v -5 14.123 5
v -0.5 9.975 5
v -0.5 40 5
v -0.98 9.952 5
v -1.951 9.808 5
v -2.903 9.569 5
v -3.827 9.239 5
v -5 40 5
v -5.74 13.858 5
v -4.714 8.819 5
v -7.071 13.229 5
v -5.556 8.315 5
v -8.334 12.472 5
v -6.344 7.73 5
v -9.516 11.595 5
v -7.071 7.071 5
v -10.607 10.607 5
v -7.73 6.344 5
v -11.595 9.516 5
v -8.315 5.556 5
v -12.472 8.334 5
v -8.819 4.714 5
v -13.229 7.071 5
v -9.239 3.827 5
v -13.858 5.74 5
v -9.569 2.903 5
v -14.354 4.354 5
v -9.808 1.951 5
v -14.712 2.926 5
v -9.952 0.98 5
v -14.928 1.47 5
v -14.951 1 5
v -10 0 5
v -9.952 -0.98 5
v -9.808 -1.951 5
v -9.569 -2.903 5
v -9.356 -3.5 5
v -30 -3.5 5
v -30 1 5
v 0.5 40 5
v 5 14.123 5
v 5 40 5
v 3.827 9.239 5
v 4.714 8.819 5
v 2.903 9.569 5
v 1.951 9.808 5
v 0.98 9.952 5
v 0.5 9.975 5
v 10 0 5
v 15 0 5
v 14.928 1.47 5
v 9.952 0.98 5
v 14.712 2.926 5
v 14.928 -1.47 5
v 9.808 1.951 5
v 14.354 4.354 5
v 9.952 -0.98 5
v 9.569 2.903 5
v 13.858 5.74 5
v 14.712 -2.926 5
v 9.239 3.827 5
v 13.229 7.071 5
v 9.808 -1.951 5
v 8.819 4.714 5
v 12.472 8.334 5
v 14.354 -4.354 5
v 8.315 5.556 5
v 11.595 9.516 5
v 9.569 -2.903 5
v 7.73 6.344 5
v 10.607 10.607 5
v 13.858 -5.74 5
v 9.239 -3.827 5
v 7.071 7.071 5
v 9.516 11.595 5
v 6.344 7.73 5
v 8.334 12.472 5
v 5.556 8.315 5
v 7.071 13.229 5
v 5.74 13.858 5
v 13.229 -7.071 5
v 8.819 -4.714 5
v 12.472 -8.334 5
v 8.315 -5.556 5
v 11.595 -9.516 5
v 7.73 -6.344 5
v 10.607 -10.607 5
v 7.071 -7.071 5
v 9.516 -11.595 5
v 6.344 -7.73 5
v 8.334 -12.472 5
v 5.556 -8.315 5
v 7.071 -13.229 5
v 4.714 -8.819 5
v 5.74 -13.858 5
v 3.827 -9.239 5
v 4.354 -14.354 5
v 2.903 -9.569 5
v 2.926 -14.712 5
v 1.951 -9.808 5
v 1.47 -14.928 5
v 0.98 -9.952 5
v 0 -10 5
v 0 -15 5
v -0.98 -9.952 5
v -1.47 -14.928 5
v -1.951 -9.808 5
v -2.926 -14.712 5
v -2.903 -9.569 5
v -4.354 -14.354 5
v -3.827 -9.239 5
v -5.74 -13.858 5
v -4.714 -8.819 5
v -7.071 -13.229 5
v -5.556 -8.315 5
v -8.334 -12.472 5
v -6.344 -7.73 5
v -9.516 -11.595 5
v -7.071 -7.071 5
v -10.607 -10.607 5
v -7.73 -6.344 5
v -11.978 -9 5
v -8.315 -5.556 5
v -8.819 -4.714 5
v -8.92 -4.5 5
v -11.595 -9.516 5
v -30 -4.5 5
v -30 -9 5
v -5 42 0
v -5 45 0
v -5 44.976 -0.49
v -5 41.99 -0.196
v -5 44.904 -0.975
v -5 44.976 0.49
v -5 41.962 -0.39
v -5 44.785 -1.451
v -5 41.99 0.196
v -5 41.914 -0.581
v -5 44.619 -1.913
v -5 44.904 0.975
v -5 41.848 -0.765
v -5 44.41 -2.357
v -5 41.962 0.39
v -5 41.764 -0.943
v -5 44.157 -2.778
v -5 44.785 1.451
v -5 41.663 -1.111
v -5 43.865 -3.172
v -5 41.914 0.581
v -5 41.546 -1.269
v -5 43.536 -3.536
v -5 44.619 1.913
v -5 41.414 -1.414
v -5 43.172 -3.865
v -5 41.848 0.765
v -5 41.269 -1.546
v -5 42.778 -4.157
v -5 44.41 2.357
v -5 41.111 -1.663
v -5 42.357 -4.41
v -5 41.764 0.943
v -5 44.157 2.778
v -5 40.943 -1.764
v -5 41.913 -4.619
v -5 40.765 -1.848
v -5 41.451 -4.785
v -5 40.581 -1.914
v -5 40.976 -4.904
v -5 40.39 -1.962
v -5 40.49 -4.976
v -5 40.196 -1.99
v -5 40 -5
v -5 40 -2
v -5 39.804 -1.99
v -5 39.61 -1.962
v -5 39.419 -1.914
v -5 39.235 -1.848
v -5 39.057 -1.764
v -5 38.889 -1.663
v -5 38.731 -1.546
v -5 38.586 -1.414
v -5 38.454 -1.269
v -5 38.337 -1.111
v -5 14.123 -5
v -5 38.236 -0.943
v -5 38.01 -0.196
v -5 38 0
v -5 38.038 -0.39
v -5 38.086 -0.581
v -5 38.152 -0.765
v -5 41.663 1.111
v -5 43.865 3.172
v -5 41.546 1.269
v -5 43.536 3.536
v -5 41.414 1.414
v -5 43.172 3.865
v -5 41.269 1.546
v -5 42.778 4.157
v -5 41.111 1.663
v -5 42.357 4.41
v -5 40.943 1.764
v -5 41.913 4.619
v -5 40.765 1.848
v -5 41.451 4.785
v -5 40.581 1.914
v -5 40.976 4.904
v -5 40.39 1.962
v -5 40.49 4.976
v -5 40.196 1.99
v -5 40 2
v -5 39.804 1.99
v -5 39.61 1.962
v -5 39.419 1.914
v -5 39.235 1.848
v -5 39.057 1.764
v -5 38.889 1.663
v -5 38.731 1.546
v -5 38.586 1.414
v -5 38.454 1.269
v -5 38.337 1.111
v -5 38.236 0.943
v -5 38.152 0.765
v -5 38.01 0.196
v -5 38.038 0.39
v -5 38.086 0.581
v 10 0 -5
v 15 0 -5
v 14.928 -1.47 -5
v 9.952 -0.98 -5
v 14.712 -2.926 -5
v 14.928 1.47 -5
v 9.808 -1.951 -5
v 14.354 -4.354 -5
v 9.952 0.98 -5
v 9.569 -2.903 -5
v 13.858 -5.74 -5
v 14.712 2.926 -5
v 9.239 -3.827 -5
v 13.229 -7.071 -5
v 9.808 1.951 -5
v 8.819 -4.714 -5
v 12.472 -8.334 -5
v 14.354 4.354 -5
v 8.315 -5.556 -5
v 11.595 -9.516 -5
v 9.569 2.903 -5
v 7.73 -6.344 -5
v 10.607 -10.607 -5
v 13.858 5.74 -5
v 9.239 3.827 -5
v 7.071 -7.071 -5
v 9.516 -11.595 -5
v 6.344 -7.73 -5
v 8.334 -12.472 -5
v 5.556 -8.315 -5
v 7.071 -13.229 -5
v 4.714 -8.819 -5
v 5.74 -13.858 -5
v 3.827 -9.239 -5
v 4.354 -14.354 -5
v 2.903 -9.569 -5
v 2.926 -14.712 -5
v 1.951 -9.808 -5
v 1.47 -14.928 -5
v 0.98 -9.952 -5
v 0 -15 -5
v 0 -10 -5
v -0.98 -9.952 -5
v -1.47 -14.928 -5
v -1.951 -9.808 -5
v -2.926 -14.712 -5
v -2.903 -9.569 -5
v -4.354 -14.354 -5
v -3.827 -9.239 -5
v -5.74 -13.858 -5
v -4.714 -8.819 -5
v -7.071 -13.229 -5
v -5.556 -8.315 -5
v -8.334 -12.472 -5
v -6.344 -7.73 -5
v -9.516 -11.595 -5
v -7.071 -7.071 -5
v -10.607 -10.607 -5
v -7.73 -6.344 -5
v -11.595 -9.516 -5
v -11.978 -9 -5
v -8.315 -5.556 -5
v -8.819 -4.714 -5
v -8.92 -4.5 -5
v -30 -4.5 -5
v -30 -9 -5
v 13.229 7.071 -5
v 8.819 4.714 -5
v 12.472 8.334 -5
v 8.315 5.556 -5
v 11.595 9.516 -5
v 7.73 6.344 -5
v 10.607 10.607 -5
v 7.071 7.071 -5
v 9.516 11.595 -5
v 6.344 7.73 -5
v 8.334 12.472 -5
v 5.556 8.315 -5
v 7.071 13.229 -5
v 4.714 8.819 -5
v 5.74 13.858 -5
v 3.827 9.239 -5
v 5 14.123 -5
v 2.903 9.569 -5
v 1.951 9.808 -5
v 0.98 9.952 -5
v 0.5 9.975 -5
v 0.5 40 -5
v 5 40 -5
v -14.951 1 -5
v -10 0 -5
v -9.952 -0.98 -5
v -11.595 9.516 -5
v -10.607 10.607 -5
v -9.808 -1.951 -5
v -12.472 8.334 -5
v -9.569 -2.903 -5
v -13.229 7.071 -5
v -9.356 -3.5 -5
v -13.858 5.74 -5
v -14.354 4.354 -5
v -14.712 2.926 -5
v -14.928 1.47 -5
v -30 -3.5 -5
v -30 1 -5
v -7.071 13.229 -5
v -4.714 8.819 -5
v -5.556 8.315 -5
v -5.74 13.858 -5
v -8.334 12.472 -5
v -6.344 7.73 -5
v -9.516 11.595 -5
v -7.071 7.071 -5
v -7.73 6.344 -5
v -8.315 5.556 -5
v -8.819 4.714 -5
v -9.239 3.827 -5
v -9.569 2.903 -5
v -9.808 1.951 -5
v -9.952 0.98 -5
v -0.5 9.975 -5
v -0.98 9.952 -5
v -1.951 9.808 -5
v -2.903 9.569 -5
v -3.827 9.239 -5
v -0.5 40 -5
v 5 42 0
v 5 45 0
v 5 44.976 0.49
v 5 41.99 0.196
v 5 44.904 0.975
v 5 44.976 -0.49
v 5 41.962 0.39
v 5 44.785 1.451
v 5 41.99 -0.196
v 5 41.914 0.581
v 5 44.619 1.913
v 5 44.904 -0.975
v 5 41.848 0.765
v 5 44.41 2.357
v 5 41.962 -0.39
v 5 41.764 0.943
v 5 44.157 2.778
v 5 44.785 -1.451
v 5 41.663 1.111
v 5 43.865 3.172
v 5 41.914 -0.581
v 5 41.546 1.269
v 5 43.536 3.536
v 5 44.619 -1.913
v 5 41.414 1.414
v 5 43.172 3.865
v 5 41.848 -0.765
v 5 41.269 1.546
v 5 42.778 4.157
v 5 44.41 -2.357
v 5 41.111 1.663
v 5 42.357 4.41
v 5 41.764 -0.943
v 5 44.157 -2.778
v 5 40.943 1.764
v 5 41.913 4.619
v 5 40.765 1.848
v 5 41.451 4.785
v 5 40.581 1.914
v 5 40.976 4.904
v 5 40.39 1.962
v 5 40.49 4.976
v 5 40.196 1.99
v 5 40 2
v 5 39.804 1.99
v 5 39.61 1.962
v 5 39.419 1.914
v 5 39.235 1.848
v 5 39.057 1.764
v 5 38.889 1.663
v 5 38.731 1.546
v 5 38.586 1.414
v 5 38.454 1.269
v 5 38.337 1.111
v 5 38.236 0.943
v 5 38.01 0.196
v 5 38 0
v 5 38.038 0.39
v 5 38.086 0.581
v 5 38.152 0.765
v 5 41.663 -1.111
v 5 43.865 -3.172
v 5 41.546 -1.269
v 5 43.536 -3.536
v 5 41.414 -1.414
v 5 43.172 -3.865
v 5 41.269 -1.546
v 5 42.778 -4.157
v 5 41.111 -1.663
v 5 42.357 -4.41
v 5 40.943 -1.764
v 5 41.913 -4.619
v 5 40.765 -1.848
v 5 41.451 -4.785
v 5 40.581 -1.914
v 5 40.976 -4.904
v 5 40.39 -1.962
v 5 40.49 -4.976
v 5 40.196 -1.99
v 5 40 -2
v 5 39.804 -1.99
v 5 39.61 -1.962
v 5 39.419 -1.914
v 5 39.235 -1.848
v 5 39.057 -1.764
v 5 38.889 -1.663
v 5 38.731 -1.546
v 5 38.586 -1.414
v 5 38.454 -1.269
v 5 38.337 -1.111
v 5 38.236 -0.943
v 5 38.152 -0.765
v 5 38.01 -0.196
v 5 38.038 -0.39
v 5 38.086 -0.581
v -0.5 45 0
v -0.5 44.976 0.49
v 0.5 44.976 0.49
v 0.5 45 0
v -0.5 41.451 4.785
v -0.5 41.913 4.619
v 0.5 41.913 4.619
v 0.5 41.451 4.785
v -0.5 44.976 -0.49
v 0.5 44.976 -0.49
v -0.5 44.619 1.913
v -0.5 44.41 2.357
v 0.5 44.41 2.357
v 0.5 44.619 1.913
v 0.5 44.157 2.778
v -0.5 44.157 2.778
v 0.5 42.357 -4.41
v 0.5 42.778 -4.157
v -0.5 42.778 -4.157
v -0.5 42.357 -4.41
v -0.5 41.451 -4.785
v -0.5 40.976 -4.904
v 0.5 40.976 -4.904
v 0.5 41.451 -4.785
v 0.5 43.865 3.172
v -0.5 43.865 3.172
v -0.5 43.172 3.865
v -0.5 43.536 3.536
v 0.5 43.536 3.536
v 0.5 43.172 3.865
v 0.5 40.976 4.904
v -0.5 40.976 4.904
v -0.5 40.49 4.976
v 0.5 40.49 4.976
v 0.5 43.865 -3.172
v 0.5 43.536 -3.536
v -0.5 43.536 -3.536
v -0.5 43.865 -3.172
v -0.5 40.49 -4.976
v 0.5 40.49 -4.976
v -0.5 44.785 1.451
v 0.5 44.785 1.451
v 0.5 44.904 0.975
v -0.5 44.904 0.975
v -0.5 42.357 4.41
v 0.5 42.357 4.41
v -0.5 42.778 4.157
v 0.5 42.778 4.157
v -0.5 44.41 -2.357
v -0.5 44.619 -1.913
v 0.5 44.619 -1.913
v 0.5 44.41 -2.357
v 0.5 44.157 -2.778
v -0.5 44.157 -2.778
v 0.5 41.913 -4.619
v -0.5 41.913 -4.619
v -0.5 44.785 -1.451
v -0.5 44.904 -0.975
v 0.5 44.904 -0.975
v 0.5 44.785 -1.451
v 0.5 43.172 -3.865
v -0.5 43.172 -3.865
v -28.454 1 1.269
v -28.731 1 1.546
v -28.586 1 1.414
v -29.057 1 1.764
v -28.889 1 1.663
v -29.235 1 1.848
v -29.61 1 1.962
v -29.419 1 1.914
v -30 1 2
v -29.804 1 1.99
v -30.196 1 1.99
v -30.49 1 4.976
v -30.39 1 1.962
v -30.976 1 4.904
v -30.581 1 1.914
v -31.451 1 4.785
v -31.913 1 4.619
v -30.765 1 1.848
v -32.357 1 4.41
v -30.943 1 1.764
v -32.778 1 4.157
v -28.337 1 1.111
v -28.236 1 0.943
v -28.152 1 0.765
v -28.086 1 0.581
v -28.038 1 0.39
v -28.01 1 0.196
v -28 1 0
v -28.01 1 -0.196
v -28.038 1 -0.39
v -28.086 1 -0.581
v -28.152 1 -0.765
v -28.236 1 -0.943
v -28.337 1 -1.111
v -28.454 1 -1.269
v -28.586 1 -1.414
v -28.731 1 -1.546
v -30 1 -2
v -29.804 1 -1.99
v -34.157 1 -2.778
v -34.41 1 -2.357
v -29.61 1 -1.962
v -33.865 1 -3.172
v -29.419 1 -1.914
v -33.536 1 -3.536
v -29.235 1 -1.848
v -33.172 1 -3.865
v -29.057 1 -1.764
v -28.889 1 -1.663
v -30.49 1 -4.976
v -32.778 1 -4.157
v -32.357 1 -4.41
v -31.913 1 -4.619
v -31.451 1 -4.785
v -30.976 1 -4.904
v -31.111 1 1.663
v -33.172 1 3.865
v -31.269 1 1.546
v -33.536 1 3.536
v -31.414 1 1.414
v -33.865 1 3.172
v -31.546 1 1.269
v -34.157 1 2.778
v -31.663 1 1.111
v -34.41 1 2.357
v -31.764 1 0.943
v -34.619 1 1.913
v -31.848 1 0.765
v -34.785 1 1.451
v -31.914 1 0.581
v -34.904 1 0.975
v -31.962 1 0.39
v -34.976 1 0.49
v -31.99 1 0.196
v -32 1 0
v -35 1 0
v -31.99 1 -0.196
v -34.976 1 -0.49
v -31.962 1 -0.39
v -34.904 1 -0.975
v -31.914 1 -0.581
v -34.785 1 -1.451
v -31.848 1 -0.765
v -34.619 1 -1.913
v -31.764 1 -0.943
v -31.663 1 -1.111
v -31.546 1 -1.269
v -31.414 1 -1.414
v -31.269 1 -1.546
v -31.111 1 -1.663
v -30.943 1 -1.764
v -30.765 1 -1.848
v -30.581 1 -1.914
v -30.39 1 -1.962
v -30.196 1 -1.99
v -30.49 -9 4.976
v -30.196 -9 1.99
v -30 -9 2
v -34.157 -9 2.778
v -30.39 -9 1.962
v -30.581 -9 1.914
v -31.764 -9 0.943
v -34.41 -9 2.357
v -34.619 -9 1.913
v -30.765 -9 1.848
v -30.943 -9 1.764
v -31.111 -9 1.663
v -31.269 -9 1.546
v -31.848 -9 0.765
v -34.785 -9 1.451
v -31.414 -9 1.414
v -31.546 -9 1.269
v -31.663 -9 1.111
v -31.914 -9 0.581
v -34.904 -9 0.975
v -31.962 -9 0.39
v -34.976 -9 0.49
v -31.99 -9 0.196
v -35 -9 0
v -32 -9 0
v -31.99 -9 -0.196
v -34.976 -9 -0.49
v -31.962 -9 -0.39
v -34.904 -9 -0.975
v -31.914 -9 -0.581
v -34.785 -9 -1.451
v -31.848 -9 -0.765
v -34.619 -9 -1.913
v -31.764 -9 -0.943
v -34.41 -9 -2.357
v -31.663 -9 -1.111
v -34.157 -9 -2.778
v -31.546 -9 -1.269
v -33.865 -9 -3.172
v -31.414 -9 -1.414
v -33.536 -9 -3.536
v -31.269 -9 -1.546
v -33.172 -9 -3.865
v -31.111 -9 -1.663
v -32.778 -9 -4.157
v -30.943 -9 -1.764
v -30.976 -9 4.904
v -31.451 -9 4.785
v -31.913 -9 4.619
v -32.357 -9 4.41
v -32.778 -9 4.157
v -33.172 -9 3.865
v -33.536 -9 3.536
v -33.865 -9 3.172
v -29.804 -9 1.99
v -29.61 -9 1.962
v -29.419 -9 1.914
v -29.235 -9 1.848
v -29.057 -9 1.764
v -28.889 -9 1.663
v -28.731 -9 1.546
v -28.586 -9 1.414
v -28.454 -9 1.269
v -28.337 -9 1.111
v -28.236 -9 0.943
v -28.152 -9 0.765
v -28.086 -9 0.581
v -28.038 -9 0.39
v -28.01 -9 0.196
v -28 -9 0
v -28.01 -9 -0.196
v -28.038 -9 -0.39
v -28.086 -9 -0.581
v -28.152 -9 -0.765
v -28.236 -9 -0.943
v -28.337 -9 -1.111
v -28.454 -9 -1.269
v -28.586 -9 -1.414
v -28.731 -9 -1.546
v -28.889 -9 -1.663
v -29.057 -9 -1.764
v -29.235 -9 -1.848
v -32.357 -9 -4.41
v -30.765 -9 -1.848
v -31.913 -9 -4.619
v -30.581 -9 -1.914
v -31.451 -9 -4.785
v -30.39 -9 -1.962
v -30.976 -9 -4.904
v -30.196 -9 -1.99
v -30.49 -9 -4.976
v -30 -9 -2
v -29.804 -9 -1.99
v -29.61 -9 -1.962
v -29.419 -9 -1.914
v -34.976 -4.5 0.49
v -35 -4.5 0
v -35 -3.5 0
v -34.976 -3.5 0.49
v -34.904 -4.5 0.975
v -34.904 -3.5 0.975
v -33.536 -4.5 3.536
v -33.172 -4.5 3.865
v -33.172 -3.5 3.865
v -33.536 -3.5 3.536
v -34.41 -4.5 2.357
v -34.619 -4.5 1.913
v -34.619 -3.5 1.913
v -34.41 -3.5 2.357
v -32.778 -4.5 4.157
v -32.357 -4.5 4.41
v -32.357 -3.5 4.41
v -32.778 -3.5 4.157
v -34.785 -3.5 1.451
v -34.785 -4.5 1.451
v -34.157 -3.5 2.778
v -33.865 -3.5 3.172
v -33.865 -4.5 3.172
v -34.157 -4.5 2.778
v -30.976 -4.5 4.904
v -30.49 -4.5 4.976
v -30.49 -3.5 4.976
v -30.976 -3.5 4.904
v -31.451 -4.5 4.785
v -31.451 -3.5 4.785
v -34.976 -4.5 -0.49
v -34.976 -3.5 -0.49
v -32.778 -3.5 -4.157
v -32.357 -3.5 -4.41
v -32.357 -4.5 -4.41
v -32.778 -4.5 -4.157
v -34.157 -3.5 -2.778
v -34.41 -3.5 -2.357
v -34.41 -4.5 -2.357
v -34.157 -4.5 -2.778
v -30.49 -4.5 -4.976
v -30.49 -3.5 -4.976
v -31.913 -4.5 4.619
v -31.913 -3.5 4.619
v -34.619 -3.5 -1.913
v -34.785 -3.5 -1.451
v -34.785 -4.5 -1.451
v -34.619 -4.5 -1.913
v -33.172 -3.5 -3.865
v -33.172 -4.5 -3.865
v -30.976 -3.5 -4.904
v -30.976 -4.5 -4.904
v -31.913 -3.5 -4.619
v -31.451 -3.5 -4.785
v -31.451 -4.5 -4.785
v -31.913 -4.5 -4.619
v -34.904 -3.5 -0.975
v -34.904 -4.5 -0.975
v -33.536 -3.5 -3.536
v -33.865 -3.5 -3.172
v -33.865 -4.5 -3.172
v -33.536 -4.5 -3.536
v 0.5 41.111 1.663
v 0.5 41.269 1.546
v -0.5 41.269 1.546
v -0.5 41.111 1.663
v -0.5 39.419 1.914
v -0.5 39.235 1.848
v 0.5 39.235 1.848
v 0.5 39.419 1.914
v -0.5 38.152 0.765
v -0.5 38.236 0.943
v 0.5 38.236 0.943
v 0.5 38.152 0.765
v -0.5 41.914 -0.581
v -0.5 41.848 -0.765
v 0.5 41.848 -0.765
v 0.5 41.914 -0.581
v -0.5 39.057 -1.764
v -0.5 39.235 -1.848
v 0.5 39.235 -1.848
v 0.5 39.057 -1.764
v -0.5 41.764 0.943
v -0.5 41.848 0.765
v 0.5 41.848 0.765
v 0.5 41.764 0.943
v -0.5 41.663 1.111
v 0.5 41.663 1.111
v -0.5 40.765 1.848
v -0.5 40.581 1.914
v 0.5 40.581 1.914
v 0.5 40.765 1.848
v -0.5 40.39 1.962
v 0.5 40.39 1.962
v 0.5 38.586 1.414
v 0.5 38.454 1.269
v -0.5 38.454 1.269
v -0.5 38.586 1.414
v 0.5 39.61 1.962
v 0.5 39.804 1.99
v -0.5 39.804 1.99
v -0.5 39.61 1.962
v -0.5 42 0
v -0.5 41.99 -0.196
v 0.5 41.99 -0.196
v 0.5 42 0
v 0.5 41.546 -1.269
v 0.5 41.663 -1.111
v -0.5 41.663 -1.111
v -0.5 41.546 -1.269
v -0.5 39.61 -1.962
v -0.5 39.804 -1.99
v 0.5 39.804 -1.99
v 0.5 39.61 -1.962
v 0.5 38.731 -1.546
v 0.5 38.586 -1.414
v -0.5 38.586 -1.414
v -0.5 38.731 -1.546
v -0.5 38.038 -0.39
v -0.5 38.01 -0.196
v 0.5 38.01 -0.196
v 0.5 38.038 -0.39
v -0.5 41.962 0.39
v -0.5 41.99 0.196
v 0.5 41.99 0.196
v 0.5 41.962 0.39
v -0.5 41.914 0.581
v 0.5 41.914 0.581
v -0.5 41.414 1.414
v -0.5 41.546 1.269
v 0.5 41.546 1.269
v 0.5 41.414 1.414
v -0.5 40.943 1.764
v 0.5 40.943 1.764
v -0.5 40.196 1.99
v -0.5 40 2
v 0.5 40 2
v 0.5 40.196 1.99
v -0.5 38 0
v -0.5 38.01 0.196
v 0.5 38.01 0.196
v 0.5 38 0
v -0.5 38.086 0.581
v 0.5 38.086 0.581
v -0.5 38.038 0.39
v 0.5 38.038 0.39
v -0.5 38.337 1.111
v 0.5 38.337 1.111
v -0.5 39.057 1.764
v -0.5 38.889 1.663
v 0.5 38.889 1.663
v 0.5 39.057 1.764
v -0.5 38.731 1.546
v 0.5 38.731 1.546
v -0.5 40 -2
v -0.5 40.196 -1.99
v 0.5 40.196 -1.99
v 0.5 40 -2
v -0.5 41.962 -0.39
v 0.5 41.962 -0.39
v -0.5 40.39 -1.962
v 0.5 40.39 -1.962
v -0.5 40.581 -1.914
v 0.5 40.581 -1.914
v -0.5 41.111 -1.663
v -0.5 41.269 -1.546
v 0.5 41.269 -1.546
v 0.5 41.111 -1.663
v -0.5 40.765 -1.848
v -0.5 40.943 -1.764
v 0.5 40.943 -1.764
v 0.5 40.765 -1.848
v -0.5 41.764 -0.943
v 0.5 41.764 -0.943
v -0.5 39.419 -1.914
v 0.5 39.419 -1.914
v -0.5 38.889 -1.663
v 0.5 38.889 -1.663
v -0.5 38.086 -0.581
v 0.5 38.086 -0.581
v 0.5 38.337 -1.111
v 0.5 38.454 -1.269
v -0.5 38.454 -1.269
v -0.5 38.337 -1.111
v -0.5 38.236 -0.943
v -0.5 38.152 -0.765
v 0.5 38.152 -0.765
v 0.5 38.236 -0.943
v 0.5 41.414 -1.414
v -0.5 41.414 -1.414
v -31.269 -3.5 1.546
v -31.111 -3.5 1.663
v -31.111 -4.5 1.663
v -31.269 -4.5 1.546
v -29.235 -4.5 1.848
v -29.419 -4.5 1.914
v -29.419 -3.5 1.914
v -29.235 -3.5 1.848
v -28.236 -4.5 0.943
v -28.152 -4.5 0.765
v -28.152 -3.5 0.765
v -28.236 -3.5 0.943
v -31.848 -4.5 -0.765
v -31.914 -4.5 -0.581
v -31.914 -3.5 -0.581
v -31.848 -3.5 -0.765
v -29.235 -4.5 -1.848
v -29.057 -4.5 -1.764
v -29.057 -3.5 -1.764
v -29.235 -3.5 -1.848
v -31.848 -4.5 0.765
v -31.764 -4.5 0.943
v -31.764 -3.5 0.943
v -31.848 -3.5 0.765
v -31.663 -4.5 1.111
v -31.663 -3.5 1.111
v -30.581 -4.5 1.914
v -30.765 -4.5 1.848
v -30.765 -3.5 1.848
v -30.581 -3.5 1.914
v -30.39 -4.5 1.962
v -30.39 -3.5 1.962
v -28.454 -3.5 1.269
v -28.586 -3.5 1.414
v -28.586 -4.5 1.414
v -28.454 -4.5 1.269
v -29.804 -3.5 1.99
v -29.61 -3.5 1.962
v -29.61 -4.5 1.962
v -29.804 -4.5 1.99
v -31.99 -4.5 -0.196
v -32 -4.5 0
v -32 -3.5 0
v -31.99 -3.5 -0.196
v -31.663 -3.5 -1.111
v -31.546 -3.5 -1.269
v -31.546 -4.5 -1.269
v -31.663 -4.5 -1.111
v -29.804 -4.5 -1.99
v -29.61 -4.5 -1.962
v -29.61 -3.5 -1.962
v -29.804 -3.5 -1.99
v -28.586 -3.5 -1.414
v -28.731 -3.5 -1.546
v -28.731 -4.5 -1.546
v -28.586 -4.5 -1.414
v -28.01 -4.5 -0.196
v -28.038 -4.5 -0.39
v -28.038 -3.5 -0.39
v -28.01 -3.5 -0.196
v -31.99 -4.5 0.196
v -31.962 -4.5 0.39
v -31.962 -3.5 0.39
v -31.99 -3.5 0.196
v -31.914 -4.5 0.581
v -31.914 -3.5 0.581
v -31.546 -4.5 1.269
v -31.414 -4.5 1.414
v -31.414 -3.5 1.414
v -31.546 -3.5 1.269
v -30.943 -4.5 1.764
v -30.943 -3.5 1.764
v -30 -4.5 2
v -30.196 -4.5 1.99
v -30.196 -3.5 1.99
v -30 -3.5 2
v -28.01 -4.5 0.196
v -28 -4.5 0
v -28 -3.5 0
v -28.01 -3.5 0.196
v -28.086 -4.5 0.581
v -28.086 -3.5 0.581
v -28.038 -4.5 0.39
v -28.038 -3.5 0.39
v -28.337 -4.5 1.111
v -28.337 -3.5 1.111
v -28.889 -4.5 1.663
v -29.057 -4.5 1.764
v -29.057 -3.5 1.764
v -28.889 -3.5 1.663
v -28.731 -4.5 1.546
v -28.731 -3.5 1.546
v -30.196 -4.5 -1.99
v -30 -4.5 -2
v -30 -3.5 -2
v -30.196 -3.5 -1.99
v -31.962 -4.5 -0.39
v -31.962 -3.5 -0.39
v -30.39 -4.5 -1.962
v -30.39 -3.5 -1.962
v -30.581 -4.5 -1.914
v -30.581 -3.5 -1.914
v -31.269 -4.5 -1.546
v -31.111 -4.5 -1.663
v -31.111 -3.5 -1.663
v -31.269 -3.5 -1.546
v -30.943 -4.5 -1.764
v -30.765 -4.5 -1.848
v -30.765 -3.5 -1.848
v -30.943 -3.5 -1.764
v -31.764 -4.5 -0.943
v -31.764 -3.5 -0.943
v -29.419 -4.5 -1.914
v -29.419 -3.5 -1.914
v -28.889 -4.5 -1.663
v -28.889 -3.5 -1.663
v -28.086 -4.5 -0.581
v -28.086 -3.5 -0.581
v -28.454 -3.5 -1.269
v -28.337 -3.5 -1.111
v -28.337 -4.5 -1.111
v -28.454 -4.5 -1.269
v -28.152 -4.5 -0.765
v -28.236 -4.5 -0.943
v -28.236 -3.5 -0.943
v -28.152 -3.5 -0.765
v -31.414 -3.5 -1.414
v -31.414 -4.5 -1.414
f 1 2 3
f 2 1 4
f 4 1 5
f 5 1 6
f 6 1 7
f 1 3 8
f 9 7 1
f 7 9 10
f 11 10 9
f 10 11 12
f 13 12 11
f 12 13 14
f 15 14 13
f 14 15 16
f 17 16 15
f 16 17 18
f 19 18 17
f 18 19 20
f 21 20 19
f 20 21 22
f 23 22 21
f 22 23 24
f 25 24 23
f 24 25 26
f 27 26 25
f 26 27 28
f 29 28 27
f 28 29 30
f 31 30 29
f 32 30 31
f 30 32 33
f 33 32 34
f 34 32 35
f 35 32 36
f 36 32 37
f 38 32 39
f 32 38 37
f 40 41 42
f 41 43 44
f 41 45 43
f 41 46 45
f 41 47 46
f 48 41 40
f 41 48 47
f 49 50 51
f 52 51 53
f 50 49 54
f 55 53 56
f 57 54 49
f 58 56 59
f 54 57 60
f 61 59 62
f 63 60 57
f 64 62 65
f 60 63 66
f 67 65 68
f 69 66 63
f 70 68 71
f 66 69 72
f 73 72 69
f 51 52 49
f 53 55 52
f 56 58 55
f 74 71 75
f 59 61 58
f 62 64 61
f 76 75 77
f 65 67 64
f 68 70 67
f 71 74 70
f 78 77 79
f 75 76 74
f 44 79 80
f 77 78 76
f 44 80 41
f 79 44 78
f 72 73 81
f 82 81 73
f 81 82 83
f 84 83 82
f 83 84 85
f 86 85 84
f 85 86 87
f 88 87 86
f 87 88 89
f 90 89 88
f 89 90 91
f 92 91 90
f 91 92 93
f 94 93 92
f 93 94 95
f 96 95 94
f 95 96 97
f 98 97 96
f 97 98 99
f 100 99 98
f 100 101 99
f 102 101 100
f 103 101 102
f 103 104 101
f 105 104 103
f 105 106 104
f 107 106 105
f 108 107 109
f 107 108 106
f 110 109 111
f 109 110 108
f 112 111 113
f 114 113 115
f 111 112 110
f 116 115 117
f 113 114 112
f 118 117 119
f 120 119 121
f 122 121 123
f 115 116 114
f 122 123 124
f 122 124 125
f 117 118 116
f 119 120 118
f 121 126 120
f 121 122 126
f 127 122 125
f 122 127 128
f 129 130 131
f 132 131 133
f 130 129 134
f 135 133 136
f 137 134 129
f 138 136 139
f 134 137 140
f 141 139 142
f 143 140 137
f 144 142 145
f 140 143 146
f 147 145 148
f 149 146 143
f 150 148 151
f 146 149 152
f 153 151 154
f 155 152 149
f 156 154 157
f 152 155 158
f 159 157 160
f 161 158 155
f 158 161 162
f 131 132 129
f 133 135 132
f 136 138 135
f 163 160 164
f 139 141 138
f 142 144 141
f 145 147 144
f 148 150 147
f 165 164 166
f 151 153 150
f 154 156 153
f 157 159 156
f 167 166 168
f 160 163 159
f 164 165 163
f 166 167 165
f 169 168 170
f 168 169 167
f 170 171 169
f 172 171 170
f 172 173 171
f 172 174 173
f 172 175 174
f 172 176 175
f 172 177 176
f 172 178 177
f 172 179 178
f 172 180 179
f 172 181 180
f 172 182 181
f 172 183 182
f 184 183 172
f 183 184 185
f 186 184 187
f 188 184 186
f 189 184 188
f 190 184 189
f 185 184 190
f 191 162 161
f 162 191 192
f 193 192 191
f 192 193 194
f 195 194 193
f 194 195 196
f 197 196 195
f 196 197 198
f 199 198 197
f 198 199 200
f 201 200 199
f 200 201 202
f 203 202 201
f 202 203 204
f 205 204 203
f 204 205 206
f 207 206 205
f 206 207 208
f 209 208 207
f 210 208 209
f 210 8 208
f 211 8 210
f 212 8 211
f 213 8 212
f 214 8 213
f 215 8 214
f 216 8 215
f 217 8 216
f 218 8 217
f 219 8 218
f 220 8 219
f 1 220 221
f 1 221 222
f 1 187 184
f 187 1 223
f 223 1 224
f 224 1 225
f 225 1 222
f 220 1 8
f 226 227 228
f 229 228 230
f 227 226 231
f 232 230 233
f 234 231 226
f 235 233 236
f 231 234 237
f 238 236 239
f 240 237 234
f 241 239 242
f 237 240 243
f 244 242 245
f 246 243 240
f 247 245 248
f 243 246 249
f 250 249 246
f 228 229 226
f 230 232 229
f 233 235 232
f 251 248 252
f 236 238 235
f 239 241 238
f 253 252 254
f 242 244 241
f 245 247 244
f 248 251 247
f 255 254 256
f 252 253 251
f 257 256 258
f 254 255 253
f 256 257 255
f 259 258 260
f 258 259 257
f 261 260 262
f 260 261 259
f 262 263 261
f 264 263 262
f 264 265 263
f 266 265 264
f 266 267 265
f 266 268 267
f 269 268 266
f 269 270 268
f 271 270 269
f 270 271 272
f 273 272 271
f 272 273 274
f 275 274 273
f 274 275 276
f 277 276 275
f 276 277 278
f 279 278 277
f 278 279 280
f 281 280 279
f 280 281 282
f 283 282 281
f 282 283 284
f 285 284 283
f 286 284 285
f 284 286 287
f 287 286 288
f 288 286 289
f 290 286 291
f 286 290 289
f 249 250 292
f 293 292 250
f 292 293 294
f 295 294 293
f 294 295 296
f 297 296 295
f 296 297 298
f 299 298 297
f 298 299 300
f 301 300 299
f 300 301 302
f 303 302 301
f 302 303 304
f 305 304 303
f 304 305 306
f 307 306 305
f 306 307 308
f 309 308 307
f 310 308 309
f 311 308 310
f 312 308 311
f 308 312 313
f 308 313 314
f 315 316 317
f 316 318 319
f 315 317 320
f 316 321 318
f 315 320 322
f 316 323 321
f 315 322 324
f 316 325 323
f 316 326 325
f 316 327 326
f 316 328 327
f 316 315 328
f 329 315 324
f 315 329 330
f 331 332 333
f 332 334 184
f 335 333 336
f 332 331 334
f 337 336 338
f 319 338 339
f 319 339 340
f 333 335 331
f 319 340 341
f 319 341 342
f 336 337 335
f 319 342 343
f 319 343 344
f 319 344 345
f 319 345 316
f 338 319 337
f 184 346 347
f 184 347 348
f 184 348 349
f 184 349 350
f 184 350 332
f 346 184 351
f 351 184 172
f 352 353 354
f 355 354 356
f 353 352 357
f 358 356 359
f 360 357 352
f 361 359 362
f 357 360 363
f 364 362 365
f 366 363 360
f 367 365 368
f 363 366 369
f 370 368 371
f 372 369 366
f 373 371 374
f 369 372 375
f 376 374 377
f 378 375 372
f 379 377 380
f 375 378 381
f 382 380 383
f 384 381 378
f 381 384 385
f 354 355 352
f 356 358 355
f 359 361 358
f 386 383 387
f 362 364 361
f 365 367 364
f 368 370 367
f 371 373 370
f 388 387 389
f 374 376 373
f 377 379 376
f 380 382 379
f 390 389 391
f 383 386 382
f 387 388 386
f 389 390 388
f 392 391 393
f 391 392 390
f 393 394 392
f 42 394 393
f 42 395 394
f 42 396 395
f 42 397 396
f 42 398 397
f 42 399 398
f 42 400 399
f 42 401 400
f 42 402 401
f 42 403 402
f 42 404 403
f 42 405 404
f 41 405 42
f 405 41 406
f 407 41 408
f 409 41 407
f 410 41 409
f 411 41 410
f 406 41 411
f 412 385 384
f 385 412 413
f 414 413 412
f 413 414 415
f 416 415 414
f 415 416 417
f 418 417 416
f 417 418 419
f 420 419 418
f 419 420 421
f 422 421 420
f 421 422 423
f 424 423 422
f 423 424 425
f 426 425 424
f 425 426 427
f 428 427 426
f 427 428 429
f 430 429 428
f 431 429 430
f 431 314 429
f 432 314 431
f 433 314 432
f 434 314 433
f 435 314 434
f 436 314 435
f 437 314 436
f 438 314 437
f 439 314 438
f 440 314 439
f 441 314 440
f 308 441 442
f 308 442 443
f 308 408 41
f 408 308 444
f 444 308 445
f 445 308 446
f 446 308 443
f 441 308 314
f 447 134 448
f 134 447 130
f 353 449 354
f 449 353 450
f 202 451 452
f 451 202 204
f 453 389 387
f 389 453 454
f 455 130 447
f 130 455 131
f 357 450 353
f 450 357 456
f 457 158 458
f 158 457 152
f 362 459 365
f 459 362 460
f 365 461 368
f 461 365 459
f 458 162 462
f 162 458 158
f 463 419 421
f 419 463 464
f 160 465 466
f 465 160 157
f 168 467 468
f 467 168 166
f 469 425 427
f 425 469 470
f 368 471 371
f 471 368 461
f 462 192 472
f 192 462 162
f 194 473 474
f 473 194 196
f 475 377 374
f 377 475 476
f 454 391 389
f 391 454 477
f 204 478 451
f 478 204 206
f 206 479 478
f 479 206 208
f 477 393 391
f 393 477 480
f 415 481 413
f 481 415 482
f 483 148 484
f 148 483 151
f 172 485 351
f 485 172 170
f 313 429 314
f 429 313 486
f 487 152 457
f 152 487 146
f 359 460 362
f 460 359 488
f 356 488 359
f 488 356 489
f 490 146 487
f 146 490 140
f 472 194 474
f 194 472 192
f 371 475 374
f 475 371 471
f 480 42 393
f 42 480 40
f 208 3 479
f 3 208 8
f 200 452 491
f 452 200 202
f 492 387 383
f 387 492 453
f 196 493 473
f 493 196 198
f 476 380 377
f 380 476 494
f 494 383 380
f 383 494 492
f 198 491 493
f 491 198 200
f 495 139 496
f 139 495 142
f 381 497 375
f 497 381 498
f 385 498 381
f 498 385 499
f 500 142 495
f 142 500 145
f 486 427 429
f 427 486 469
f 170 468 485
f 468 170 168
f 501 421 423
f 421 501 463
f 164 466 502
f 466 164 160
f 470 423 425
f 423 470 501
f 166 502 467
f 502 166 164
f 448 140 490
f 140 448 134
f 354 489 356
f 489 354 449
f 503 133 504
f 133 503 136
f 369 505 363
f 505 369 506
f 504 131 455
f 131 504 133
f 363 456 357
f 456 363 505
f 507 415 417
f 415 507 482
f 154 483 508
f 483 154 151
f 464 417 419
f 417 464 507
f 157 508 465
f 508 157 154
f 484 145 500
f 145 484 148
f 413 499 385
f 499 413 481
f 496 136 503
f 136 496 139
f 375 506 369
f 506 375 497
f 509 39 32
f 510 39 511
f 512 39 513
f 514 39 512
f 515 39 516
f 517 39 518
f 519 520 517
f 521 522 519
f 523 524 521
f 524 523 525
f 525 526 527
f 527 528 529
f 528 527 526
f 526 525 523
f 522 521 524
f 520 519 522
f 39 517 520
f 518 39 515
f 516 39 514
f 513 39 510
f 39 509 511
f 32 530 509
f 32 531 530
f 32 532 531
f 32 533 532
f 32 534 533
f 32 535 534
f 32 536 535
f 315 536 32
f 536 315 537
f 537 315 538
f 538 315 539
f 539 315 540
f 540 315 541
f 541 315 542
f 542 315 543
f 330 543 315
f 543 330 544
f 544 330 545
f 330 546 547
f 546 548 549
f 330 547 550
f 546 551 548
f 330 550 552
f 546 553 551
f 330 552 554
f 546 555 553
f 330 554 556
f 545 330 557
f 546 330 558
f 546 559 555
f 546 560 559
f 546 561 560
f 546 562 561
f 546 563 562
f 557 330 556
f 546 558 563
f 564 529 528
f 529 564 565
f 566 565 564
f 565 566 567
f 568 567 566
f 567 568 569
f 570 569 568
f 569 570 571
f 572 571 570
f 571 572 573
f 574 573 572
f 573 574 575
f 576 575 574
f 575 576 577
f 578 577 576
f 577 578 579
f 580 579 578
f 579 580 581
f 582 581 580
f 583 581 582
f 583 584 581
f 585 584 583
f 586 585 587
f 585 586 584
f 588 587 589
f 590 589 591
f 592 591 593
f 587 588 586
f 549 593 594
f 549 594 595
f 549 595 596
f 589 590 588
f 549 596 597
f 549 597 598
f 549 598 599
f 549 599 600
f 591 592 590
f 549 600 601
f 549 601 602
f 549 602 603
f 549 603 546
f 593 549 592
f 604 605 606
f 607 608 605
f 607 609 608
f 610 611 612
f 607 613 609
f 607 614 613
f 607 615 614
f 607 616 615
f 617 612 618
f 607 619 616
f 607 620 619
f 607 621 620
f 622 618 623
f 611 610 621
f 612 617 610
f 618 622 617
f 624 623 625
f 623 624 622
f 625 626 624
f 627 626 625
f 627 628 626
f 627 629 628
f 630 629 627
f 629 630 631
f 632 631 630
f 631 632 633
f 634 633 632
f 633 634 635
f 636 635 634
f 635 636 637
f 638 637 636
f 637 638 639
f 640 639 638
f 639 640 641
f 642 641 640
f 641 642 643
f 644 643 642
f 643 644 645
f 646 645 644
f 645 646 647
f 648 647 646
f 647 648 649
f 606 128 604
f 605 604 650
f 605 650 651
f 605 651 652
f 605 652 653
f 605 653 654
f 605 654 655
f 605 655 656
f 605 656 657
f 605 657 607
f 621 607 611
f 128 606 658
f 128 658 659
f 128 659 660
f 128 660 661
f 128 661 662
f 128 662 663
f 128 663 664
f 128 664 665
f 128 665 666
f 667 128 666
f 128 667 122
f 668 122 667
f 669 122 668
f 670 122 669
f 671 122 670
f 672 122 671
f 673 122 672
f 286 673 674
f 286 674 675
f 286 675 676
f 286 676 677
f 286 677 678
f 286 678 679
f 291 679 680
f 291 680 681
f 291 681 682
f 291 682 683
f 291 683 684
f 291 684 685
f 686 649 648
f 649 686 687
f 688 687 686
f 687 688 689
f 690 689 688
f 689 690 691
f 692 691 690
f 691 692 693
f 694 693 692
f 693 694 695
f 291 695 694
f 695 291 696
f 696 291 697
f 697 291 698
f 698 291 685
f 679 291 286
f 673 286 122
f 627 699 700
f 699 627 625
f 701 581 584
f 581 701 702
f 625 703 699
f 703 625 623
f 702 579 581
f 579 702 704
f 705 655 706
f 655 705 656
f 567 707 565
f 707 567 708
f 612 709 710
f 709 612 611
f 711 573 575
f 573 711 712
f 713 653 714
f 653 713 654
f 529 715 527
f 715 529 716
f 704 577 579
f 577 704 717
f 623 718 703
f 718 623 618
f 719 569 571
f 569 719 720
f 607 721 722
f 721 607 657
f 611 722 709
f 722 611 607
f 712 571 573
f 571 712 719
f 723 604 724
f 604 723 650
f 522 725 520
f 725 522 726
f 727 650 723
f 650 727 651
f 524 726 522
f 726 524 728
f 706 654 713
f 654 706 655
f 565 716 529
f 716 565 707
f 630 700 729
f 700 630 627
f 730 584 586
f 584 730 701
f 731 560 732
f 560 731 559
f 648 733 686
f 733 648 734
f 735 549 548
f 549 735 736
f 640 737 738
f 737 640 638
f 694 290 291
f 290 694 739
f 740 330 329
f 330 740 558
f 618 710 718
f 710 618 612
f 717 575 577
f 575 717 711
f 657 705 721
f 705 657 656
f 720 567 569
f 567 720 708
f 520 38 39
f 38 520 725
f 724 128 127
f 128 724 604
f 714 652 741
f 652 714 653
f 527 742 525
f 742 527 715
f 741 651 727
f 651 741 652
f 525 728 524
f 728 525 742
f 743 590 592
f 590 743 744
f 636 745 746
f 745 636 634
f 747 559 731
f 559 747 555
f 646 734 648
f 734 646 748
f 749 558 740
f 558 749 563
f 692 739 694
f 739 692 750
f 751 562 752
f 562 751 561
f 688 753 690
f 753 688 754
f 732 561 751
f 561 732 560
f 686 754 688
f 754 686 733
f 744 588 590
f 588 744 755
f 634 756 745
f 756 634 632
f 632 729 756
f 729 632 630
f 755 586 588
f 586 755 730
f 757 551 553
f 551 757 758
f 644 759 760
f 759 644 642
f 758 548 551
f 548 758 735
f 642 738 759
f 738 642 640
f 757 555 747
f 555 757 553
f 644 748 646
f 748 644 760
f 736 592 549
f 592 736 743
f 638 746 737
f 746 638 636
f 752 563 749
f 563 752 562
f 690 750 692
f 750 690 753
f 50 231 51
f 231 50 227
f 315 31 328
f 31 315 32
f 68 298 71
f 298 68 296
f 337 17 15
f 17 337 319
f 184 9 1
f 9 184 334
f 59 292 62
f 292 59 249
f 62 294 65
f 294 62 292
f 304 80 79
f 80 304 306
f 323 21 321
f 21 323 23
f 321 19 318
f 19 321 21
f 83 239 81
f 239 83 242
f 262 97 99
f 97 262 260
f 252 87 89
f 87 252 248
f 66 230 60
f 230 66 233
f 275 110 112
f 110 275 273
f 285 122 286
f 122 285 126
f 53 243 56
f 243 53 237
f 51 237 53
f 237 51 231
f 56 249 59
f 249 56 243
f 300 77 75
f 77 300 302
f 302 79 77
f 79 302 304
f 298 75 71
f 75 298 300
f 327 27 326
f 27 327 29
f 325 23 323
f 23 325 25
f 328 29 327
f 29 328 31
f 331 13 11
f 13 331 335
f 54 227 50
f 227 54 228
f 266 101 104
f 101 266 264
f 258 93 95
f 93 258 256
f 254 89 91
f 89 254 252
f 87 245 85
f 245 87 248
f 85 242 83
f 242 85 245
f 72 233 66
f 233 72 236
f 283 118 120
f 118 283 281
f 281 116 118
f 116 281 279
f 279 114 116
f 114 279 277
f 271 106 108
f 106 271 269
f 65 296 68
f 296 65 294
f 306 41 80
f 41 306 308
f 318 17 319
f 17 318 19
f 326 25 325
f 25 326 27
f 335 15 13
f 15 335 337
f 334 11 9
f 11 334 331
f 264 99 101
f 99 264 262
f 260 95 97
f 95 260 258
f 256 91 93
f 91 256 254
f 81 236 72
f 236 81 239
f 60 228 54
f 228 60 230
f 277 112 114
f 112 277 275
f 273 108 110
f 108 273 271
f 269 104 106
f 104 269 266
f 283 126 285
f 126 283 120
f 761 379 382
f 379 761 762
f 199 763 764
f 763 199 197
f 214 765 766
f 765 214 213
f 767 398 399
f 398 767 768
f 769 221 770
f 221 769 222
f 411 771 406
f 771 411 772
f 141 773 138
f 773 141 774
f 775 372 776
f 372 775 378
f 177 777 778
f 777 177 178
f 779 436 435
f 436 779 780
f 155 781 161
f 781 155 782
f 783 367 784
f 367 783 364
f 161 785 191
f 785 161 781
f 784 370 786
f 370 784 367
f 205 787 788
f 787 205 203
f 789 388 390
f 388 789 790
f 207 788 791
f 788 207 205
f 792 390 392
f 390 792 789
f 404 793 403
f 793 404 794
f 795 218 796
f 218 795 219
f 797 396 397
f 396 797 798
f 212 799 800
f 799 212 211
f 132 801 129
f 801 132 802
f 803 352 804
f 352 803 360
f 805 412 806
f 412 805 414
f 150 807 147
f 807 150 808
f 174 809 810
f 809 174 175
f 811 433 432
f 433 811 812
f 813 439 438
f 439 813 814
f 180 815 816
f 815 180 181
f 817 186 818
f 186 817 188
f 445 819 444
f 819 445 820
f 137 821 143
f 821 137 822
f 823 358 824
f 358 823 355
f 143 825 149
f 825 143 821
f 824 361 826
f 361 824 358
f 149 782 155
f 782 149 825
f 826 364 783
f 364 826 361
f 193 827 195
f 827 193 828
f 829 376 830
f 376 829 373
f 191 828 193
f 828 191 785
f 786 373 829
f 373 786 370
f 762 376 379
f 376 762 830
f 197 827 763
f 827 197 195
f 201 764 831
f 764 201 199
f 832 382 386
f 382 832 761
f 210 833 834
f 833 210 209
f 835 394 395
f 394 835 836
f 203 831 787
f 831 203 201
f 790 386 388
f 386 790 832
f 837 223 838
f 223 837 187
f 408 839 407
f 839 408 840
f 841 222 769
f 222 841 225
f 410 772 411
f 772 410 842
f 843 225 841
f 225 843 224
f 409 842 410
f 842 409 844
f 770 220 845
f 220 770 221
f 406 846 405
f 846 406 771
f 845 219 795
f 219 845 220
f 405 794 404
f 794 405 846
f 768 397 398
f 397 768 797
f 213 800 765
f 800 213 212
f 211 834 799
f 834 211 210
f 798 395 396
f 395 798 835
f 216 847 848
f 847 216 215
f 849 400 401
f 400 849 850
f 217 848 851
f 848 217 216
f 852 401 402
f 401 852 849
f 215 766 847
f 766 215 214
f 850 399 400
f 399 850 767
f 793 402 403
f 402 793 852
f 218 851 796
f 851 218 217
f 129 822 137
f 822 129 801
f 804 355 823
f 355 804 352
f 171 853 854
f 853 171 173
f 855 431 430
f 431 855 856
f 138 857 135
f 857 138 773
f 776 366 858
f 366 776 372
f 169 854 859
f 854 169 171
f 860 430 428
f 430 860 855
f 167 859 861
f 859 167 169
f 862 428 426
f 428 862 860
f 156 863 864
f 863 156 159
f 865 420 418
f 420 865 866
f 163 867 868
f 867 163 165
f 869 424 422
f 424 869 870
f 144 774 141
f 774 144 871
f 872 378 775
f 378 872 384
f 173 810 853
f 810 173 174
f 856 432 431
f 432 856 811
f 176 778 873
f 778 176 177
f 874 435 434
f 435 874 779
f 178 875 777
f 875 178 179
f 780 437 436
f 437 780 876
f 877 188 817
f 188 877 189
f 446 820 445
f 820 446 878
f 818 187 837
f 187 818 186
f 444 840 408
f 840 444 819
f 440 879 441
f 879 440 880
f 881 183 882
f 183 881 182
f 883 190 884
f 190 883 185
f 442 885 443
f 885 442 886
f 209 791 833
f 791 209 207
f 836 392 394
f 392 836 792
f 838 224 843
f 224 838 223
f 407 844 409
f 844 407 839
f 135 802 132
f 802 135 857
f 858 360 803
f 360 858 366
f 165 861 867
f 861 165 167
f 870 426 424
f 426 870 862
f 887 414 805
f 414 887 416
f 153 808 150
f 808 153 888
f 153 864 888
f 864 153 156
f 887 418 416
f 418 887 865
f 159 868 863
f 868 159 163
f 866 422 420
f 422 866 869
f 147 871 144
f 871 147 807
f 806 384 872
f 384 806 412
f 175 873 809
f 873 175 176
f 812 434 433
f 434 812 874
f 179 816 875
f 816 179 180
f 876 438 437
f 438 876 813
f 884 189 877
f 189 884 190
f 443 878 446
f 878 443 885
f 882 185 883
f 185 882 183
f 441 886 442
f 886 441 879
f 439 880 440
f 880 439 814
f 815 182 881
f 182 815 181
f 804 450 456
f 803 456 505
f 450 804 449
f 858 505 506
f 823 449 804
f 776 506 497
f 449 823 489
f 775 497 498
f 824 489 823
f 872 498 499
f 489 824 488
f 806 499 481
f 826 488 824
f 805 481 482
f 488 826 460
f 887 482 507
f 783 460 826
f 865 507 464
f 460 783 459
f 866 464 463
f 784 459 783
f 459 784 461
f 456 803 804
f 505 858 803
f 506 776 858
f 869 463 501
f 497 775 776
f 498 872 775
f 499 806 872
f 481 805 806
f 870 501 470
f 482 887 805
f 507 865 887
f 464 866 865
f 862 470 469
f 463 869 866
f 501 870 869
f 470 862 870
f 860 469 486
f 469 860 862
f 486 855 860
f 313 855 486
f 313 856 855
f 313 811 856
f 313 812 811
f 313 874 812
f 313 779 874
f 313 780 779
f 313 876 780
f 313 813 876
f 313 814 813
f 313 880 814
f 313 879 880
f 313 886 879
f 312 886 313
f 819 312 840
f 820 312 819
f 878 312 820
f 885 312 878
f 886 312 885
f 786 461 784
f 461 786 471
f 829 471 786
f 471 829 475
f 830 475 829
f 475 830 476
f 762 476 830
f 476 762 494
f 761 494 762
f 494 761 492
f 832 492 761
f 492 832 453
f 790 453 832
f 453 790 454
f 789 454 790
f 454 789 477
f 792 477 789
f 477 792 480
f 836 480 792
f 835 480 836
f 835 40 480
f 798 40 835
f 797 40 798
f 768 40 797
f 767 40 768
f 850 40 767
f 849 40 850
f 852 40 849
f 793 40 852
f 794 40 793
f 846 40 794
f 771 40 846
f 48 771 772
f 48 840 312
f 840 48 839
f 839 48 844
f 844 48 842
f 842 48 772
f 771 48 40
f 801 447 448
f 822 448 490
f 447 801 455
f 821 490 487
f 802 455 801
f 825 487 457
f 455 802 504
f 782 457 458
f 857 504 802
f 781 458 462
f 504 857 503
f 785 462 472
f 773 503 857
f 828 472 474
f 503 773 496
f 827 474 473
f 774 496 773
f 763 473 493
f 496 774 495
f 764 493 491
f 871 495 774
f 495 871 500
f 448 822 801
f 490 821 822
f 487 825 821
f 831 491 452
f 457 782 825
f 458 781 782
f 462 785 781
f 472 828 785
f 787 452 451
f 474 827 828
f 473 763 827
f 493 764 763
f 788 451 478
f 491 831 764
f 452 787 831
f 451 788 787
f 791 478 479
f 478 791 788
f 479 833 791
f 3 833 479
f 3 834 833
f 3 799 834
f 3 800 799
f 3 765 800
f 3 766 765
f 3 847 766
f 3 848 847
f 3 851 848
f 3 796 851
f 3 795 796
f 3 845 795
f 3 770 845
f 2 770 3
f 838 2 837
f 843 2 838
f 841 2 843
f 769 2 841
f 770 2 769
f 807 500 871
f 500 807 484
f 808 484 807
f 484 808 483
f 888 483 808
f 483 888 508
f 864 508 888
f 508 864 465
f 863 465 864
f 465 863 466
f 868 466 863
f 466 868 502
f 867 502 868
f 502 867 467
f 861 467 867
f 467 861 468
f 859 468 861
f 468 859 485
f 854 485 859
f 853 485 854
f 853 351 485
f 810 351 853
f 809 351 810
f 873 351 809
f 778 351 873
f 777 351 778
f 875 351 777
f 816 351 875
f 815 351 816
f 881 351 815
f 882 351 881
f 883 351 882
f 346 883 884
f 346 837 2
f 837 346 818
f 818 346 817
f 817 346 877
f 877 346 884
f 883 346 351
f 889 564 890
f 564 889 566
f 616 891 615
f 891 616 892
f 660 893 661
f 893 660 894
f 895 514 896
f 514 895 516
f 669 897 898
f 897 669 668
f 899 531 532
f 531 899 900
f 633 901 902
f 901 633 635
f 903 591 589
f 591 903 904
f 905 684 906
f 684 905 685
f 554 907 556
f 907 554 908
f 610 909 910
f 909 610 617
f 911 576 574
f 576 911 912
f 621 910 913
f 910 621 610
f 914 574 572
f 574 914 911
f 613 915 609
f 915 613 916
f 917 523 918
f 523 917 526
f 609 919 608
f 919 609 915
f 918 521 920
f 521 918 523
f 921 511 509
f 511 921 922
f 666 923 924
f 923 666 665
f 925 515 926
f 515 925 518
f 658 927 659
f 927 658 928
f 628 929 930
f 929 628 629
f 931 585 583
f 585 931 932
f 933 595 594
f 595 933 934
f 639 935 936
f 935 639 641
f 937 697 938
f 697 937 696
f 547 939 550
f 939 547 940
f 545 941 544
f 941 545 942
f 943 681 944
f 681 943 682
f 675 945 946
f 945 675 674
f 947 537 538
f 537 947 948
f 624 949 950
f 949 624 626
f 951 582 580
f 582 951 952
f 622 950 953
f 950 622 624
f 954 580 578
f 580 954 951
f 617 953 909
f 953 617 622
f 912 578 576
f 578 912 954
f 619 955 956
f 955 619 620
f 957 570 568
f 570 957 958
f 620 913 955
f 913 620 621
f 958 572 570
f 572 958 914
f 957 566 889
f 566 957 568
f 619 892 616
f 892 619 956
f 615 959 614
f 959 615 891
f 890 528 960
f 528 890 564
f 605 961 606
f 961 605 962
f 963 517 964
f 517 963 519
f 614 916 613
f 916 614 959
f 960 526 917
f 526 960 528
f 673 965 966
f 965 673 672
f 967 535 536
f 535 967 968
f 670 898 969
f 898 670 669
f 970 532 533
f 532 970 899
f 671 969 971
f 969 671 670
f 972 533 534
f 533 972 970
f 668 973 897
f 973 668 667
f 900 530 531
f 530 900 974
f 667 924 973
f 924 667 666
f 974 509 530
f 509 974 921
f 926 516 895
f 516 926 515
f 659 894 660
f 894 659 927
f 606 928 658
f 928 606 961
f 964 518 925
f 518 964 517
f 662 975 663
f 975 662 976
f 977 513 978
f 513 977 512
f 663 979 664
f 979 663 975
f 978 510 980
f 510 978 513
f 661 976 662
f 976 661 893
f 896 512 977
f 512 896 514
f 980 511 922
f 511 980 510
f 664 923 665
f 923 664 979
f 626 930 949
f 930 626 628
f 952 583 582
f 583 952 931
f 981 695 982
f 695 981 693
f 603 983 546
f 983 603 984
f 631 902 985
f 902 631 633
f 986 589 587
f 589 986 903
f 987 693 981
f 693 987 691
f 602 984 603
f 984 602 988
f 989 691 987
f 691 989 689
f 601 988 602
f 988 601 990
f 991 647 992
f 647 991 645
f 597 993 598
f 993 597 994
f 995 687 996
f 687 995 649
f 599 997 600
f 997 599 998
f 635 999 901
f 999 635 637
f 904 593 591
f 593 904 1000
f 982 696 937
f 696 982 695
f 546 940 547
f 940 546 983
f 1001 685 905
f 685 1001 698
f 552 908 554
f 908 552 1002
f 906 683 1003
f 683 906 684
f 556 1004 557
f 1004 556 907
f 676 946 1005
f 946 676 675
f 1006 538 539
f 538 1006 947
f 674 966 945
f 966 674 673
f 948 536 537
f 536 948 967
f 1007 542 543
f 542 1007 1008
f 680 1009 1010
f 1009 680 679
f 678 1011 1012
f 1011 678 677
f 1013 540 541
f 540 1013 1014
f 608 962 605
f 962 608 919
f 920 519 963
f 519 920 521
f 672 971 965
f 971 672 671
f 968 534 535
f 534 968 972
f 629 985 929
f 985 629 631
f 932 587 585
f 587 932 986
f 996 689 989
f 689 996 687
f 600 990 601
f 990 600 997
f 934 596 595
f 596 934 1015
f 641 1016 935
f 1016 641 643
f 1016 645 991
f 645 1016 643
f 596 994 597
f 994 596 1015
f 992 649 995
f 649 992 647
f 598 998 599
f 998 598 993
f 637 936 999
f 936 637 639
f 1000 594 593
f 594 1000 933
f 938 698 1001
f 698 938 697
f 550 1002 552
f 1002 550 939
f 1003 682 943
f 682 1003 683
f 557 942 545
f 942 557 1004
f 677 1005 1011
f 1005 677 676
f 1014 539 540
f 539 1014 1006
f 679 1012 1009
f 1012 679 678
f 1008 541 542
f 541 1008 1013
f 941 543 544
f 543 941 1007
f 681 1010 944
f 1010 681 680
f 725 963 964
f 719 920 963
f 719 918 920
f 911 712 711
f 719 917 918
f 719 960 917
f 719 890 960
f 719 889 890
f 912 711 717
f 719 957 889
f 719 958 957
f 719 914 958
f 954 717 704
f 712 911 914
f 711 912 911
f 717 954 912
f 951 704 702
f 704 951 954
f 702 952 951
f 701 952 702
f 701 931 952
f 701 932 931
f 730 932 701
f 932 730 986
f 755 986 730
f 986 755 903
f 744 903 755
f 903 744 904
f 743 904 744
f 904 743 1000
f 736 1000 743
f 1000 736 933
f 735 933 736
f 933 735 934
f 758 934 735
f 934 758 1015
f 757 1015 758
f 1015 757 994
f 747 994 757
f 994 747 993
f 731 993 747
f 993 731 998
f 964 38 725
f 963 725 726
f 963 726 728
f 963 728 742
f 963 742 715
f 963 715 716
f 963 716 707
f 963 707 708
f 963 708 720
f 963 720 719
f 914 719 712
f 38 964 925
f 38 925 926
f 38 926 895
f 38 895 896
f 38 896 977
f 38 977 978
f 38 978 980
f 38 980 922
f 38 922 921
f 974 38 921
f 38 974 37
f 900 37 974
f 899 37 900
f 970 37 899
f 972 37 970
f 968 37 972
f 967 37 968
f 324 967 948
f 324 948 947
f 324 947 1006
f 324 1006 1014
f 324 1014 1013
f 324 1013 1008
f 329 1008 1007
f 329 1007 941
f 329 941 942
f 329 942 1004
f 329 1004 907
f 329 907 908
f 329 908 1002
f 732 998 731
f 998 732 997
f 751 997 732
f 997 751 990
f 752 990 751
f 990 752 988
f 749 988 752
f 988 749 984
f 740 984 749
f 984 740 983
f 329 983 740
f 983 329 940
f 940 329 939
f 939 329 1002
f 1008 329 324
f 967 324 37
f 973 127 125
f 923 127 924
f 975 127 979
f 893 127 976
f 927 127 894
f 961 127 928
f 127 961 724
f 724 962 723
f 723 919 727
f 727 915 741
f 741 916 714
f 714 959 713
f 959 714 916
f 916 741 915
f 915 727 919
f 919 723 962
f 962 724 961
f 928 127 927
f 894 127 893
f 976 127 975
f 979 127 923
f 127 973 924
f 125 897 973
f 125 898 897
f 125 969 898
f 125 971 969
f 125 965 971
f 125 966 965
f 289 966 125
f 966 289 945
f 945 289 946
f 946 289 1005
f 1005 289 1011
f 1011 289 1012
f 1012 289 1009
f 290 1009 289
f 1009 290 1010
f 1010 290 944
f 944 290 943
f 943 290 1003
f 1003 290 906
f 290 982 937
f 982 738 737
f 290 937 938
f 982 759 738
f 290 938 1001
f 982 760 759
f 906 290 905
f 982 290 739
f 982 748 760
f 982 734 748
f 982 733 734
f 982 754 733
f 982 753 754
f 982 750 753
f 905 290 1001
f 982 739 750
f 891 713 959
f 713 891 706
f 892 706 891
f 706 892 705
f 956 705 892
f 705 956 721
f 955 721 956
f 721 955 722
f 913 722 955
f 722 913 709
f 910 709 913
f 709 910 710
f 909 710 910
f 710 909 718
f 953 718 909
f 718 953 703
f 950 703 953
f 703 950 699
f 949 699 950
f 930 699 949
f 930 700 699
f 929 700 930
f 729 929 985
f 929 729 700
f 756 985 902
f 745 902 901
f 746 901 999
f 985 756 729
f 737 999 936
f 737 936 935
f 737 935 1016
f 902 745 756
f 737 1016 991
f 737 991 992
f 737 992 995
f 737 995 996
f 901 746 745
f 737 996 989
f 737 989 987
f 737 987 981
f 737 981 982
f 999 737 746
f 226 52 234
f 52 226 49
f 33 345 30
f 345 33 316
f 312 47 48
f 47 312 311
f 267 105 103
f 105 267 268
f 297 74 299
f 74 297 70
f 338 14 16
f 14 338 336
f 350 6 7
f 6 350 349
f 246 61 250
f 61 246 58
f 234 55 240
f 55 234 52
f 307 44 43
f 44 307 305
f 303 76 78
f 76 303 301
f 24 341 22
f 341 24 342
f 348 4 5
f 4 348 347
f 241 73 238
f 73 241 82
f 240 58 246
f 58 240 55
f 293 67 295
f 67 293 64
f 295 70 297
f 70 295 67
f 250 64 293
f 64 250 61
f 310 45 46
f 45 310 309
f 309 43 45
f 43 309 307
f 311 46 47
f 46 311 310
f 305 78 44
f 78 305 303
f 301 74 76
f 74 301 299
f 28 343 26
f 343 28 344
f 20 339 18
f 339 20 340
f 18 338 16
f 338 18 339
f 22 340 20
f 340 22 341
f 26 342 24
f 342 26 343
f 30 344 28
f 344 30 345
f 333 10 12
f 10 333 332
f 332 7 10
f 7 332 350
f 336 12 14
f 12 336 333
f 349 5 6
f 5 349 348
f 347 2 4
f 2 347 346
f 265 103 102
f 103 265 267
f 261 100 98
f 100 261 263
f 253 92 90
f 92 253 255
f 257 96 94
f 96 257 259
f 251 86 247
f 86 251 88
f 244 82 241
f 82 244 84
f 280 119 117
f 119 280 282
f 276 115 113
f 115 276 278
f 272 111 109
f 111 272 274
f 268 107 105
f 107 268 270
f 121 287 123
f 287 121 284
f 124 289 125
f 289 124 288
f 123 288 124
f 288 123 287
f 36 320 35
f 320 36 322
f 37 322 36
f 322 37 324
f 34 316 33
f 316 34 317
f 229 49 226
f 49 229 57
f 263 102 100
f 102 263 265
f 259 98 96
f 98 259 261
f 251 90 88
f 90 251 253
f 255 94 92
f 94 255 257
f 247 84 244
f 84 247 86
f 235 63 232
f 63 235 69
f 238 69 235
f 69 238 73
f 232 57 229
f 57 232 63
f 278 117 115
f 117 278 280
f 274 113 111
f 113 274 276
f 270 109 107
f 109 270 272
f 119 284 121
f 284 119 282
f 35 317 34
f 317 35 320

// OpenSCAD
difference() {
	union() {
		cylinder($fn = 64, center = true, d = 30.0, h = 10.0);
		rotate(a = [0, 0, 90]) {
			union() {
				translate(v = [20.0, 0, 0]) {
					cube(center = true, size = [40, 10.0, 10.0]);
				}
				translate(v = [40, 0, 0]) {
					rotate(a = [90, 0, 0]) {
						cylinder($fn = 64, center = true, d = 10.0, h = 10.0);
					}
				}
			}
		}
		rotate(a = [0, 0, 180]) {
			translate(v = [0, 4, 0]) {
				union() {
					translate(v = [15.0, 0, 0]) {
						cube(center = true, size = [30.0, 10.0, 10.0]);
					}
					translate(v = [30.0, 0, 0]) {
						rotate(a = [90, 0, 0]) {
							cylinder($fn = 64, center = true, d = 10.0, h = 10.0);
						}
					}
				}
			}
		}
	}
	union() {
		cylinder($fn = 64, center = true, d = 20.0, h = 10.01);
		rotate(a = [0, 0, 90]) {
			union() {
				translate(v = [20.0, 0, 0]) {
					cube(center = true, size = [45.0, 1, 10.01]);
				}
				translate(v = [40, 0, 0]) {
					rotate(a = [90, 0, 0]) {
						union() {
							cylinder($fn = 64, center = true, d = 4, h = 10.01);
							cube(center = true, size = [10.01, 10.01, 1]);
						}
					}
				}
			}
		}
		rotate(a = [0, 0, 180]) {
			translate(v = [0, 4, 0]) {
				union() {
					translate(v = [15.0, 0, 0]) {
						cube(center = true, size = [35.0, 1, 10.01]);
					}
					translate(v = [30.0, 0, 0]) {
						rotate(a = [90, 0, 0]) {
							union() {
								cylinder($fn = 64, center = true, d = 4, h = 10.01);
								cube(center = true, size = [10.01, 10.01, 1]);
							}
						}
					}
				}
			}
		}
	}
}
